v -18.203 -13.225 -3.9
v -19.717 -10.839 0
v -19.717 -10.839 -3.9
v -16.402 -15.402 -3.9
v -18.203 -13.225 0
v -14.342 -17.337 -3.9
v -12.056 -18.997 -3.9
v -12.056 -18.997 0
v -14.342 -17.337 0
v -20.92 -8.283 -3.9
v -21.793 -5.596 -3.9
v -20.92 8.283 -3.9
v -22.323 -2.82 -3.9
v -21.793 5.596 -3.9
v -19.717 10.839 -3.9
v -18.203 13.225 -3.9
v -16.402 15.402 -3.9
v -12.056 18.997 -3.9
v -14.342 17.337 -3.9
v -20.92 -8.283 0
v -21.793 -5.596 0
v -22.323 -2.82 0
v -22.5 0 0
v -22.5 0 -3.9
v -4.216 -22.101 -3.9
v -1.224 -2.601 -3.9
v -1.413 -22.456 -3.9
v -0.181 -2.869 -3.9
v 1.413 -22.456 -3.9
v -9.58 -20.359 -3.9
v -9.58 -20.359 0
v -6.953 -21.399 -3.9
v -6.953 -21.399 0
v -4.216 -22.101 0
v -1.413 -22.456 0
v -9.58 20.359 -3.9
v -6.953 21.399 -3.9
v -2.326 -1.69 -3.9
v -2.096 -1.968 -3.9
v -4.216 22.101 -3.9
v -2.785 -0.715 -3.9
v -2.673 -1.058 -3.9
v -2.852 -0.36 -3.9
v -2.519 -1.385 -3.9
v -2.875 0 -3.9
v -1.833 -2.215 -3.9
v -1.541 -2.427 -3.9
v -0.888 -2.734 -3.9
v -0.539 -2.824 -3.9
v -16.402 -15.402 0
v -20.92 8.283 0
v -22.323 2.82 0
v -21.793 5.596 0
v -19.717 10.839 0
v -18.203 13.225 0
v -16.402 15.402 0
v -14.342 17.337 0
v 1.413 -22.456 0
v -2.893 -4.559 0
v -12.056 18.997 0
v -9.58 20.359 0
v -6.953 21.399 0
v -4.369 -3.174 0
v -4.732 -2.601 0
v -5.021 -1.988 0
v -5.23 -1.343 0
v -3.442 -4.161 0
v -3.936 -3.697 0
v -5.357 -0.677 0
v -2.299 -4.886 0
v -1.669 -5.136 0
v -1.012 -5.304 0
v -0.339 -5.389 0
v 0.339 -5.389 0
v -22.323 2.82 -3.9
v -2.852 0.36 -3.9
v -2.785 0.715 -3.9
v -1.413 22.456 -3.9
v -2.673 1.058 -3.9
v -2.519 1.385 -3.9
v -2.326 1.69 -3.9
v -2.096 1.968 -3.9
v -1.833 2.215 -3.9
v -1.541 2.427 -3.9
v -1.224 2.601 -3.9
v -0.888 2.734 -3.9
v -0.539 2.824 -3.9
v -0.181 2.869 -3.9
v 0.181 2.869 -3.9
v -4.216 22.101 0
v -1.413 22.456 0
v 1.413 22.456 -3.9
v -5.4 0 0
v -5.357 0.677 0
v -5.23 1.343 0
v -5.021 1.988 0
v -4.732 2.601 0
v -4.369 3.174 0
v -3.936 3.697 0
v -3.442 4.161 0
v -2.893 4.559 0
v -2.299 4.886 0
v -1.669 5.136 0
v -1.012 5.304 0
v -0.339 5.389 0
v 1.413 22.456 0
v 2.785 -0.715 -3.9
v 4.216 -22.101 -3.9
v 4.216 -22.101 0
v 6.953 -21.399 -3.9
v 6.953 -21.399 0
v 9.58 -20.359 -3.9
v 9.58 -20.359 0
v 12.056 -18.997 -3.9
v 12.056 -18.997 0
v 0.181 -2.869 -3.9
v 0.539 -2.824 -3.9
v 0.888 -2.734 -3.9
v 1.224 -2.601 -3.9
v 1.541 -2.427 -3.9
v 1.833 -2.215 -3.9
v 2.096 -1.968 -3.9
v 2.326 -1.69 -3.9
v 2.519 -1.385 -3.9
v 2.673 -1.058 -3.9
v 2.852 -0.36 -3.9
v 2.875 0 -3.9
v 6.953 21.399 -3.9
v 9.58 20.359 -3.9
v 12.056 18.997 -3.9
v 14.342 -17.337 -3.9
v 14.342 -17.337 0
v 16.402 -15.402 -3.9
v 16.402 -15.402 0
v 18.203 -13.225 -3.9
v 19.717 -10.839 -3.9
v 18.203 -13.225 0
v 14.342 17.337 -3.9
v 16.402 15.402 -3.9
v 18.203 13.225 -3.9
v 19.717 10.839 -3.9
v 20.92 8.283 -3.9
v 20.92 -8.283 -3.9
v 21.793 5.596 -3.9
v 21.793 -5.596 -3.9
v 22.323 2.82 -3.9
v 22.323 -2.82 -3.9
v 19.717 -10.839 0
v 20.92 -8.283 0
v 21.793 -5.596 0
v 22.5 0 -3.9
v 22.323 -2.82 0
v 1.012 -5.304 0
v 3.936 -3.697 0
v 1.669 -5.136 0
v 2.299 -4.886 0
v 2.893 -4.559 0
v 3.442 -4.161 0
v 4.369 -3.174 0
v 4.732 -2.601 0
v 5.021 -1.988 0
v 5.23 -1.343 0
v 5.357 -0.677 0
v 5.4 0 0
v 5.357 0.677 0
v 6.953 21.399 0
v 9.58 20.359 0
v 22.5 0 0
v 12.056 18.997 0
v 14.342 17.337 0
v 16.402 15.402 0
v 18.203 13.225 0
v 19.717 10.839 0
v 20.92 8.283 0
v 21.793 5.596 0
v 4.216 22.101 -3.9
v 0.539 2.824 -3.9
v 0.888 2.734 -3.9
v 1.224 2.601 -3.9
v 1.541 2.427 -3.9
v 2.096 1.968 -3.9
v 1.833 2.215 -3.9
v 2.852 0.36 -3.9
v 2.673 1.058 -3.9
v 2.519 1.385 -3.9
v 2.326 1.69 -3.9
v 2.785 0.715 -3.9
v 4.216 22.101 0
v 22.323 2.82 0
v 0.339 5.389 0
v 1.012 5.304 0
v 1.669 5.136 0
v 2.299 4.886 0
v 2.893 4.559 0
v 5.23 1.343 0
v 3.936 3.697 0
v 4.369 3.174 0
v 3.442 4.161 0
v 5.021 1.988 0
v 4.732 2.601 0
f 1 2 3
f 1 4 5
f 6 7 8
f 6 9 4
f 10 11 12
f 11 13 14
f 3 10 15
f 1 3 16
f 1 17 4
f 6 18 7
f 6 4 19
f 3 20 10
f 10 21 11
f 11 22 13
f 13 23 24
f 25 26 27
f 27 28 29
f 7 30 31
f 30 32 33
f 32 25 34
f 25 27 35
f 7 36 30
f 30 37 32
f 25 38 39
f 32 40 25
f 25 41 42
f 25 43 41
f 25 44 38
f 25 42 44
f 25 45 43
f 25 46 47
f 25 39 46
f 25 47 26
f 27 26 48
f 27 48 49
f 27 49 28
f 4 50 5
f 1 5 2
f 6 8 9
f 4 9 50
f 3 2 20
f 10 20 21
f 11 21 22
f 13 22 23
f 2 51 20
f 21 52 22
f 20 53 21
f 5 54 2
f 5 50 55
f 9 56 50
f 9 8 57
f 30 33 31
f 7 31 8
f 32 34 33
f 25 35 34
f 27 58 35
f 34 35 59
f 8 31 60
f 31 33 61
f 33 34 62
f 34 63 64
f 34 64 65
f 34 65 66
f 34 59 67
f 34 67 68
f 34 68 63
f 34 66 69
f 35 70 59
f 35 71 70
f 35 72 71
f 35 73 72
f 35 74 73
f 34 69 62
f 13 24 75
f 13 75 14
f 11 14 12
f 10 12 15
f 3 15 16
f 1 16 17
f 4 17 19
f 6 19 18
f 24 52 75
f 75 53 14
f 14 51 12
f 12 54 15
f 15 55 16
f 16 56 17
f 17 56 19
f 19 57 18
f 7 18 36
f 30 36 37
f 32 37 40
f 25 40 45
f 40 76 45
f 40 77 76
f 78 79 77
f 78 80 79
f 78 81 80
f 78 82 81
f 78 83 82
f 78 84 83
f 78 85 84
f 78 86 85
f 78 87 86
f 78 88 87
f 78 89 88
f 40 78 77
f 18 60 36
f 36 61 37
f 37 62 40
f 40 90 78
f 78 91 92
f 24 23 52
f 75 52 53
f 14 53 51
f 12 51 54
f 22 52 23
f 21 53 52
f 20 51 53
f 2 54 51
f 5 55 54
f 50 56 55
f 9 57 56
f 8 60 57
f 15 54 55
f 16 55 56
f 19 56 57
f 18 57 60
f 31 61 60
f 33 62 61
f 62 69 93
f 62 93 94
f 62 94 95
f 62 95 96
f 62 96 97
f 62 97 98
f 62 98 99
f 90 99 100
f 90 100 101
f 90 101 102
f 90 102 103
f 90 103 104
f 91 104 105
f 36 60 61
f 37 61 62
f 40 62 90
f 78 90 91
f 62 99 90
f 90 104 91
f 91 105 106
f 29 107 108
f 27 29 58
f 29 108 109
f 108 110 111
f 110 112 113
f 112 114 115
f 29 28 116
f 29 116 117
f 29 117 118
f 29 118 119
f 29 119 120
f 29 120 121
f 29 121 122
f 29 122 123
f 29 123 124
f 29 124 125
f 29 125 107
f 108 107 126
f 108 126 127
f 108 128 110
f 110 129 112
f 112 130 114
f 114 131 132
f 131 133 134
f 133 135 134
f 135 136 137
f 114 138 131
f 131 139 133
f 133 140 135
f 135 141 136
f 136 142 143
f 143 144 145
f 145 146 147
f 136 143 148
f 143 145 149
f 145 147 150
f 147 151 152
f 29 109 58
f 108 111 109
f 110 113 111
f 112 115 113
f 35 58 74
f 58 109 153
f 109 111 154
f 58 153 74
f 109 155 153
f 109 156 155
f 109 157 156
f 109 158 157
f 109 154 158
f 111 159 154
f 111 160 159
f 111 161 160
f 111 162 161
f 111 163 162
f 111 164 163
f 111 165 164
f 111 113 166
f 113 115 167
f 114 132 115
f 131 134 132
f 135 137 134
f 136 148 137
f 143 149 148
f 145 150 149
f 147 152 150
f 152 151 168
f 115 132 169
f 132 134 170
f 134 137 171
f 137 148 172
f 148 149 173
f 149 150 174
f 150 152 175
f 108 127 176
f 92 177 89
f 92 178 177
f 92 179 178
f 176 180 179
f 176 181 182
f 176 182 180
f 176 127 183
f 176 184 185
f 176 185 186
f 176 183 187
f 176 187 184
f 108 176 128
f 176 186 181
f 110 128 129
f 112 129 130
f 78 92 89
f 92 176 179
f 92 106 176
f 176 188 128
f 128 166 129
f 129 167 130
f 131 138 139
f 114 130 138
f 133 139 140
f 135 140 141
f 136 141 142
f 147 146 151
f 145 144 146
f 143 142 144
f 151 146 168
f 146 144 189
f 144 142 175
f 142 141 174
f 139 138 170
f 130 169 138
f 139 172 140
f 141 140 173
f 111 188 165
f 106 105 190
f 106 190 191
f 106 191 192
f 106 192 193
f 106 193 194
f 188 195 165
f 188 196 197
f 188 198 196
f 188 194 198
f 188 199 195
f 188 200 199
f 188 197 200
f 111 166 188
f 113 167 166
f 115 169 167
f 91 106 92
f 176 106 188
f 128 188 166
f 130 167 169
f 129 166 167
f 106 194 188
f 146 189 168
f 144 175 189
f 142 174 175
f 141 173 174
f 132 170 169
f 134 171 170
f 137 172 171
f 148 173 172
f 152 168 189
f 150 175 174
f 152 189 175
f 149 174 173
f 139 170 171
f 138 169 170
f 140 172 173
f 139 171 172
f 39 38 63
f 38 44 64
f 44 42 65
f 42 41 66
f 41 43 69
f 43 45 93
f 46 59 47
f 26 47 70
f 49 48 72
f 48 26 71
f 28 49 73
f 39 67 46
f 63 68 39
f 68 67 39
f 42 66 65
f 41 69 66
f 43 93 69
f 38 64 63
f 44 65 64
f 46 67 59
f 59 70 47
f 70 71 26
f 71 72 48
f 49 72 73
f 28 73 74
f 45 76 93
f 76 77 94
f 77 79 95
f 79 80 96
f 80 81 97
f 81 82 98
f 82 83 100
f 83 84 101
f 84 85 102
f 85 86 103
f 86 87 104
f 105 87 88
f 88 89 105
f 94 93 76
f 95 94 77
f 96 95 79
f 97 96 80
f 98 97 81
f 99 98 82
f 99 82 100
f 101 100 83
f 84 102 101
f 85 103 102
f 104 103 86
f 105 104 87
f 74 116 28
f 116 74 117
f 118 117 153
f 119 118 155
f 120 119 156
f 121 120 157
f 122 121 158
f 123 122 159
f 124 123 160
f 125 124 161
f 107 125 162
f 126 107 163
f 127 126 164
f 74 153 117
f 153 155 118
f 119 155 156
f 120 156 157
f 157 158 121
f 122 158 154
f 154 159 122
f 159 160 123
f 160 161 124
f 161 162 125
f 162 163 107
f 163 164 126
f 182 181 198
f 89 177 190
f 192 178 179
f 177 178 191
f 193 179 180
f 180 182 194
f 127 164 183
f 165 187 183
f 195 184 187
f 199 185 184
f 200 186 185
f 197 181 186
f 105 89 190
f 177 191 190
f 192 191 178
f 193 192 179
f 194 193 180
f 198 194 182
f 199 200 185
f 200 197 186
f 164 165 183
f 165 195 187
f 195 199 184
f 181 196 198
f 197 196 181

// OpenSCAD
$fn = 50;

difference() {
	union() {
		translate(v = [0, 0, -3.9]) {
			cylinder(h = 3.9, r = 22.5);
		}
		#translate(v = [0, 0, -6.9]) {
			cylinder(h = 6.9, r = 2.875);
		}
	}
	union() {
		translate(v = [0, 0, 0]) {
			rotate(a = [0, 0, 0]) {
				difference() {
					union() {
						translate(v = [0, 0, -6.9]) {
							cylinder(h = 6.9, r = 2.6);
						}
						translate(v = [0, 0, -3.9]) {
							cylinder(h = 3.9, r1 = 2.875, r2 = 5.4);
						}
						translate(v = [0, 0, -6.9]) {
							cylinder(h = 6.9, r = 2.875);
						}
						translate(v = [0, 0, -6.9]) {
							cylinder(h = 6.9, r = 2.6);
						}
					}
					union();
				}
			}
		}
	}
}
